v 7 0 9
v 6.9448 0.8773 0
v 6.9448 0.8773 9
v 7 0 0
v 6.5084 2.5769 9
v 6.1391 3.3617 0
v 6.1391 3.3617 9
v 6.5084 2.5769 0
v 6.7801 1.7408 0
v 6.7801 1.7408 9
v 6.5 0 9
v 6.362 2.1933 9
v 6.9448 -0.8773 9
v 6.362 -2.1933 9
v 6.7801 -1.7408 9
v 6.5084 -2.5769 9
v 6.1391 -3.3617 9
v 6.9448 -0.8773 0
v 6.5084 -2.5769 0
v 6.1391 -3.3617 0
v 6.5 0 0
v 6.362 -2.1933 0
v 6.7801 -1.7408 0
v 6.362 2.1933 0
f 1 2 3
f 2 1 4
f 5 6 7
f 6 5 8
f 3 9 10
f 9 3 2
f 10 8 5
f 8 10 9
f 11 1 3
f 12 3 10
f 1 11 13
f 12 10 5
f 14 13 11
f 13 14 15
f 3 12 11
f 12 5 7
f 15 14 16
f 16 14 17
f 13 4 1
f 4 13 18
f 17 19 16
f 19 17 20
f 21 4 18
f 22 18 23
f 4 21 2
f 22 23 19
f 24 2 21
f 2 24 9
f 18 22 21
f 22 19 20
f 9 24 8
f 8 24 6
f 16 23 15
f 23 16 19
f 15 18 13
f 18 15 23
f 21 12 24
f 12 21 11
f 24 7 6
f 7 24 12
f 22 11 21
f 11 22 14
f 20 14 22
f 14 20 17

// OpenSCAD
$fn = 50;


difference() {
	union() {
		cylinder(h = 9, r = 7.0000000000);
		translate(v = [-14.0000000000, 0, 0]) {
			cylinder(h = 9, r = 7.0000000000);
		}
	}
	union() {
		cylinder(h = 9, r = 3.2500000000);
		cylinder(h = 9, r = 1.8000000000);
		cylinder(h = 9, r = 1.8000000000);
		cylinder(h = 9, r = 1.8000000000);
		translate(v = [-18.5000000000, 0, 0]) {
			hull() {
				translate(v = [-3.7500000000, 0.0000000000, 0]) {
					cylinder(h = 9, r = 7.5000000000);
				}
				translate(v = [3.7500000000, 0.0000000000, 0]) {
					cylinder(h = 9, r = 7.5000000000);
				}
				translate(v = [-3.7500000000, -0.0000000000, 0]) {
					cylinder(h = 9, r = 7.5000000000);
				}
				translate(v = [3.7500000000, -0.0000000000, 0]) {
					cylinder(h = 9, r = 7.5000000000);
				}
			}
		}
		translate(v = [-11.0000000000, 0, 0.0000000000]) {
			cylinder(h = 9, r = 17.5000000000);
		}
	}
}
